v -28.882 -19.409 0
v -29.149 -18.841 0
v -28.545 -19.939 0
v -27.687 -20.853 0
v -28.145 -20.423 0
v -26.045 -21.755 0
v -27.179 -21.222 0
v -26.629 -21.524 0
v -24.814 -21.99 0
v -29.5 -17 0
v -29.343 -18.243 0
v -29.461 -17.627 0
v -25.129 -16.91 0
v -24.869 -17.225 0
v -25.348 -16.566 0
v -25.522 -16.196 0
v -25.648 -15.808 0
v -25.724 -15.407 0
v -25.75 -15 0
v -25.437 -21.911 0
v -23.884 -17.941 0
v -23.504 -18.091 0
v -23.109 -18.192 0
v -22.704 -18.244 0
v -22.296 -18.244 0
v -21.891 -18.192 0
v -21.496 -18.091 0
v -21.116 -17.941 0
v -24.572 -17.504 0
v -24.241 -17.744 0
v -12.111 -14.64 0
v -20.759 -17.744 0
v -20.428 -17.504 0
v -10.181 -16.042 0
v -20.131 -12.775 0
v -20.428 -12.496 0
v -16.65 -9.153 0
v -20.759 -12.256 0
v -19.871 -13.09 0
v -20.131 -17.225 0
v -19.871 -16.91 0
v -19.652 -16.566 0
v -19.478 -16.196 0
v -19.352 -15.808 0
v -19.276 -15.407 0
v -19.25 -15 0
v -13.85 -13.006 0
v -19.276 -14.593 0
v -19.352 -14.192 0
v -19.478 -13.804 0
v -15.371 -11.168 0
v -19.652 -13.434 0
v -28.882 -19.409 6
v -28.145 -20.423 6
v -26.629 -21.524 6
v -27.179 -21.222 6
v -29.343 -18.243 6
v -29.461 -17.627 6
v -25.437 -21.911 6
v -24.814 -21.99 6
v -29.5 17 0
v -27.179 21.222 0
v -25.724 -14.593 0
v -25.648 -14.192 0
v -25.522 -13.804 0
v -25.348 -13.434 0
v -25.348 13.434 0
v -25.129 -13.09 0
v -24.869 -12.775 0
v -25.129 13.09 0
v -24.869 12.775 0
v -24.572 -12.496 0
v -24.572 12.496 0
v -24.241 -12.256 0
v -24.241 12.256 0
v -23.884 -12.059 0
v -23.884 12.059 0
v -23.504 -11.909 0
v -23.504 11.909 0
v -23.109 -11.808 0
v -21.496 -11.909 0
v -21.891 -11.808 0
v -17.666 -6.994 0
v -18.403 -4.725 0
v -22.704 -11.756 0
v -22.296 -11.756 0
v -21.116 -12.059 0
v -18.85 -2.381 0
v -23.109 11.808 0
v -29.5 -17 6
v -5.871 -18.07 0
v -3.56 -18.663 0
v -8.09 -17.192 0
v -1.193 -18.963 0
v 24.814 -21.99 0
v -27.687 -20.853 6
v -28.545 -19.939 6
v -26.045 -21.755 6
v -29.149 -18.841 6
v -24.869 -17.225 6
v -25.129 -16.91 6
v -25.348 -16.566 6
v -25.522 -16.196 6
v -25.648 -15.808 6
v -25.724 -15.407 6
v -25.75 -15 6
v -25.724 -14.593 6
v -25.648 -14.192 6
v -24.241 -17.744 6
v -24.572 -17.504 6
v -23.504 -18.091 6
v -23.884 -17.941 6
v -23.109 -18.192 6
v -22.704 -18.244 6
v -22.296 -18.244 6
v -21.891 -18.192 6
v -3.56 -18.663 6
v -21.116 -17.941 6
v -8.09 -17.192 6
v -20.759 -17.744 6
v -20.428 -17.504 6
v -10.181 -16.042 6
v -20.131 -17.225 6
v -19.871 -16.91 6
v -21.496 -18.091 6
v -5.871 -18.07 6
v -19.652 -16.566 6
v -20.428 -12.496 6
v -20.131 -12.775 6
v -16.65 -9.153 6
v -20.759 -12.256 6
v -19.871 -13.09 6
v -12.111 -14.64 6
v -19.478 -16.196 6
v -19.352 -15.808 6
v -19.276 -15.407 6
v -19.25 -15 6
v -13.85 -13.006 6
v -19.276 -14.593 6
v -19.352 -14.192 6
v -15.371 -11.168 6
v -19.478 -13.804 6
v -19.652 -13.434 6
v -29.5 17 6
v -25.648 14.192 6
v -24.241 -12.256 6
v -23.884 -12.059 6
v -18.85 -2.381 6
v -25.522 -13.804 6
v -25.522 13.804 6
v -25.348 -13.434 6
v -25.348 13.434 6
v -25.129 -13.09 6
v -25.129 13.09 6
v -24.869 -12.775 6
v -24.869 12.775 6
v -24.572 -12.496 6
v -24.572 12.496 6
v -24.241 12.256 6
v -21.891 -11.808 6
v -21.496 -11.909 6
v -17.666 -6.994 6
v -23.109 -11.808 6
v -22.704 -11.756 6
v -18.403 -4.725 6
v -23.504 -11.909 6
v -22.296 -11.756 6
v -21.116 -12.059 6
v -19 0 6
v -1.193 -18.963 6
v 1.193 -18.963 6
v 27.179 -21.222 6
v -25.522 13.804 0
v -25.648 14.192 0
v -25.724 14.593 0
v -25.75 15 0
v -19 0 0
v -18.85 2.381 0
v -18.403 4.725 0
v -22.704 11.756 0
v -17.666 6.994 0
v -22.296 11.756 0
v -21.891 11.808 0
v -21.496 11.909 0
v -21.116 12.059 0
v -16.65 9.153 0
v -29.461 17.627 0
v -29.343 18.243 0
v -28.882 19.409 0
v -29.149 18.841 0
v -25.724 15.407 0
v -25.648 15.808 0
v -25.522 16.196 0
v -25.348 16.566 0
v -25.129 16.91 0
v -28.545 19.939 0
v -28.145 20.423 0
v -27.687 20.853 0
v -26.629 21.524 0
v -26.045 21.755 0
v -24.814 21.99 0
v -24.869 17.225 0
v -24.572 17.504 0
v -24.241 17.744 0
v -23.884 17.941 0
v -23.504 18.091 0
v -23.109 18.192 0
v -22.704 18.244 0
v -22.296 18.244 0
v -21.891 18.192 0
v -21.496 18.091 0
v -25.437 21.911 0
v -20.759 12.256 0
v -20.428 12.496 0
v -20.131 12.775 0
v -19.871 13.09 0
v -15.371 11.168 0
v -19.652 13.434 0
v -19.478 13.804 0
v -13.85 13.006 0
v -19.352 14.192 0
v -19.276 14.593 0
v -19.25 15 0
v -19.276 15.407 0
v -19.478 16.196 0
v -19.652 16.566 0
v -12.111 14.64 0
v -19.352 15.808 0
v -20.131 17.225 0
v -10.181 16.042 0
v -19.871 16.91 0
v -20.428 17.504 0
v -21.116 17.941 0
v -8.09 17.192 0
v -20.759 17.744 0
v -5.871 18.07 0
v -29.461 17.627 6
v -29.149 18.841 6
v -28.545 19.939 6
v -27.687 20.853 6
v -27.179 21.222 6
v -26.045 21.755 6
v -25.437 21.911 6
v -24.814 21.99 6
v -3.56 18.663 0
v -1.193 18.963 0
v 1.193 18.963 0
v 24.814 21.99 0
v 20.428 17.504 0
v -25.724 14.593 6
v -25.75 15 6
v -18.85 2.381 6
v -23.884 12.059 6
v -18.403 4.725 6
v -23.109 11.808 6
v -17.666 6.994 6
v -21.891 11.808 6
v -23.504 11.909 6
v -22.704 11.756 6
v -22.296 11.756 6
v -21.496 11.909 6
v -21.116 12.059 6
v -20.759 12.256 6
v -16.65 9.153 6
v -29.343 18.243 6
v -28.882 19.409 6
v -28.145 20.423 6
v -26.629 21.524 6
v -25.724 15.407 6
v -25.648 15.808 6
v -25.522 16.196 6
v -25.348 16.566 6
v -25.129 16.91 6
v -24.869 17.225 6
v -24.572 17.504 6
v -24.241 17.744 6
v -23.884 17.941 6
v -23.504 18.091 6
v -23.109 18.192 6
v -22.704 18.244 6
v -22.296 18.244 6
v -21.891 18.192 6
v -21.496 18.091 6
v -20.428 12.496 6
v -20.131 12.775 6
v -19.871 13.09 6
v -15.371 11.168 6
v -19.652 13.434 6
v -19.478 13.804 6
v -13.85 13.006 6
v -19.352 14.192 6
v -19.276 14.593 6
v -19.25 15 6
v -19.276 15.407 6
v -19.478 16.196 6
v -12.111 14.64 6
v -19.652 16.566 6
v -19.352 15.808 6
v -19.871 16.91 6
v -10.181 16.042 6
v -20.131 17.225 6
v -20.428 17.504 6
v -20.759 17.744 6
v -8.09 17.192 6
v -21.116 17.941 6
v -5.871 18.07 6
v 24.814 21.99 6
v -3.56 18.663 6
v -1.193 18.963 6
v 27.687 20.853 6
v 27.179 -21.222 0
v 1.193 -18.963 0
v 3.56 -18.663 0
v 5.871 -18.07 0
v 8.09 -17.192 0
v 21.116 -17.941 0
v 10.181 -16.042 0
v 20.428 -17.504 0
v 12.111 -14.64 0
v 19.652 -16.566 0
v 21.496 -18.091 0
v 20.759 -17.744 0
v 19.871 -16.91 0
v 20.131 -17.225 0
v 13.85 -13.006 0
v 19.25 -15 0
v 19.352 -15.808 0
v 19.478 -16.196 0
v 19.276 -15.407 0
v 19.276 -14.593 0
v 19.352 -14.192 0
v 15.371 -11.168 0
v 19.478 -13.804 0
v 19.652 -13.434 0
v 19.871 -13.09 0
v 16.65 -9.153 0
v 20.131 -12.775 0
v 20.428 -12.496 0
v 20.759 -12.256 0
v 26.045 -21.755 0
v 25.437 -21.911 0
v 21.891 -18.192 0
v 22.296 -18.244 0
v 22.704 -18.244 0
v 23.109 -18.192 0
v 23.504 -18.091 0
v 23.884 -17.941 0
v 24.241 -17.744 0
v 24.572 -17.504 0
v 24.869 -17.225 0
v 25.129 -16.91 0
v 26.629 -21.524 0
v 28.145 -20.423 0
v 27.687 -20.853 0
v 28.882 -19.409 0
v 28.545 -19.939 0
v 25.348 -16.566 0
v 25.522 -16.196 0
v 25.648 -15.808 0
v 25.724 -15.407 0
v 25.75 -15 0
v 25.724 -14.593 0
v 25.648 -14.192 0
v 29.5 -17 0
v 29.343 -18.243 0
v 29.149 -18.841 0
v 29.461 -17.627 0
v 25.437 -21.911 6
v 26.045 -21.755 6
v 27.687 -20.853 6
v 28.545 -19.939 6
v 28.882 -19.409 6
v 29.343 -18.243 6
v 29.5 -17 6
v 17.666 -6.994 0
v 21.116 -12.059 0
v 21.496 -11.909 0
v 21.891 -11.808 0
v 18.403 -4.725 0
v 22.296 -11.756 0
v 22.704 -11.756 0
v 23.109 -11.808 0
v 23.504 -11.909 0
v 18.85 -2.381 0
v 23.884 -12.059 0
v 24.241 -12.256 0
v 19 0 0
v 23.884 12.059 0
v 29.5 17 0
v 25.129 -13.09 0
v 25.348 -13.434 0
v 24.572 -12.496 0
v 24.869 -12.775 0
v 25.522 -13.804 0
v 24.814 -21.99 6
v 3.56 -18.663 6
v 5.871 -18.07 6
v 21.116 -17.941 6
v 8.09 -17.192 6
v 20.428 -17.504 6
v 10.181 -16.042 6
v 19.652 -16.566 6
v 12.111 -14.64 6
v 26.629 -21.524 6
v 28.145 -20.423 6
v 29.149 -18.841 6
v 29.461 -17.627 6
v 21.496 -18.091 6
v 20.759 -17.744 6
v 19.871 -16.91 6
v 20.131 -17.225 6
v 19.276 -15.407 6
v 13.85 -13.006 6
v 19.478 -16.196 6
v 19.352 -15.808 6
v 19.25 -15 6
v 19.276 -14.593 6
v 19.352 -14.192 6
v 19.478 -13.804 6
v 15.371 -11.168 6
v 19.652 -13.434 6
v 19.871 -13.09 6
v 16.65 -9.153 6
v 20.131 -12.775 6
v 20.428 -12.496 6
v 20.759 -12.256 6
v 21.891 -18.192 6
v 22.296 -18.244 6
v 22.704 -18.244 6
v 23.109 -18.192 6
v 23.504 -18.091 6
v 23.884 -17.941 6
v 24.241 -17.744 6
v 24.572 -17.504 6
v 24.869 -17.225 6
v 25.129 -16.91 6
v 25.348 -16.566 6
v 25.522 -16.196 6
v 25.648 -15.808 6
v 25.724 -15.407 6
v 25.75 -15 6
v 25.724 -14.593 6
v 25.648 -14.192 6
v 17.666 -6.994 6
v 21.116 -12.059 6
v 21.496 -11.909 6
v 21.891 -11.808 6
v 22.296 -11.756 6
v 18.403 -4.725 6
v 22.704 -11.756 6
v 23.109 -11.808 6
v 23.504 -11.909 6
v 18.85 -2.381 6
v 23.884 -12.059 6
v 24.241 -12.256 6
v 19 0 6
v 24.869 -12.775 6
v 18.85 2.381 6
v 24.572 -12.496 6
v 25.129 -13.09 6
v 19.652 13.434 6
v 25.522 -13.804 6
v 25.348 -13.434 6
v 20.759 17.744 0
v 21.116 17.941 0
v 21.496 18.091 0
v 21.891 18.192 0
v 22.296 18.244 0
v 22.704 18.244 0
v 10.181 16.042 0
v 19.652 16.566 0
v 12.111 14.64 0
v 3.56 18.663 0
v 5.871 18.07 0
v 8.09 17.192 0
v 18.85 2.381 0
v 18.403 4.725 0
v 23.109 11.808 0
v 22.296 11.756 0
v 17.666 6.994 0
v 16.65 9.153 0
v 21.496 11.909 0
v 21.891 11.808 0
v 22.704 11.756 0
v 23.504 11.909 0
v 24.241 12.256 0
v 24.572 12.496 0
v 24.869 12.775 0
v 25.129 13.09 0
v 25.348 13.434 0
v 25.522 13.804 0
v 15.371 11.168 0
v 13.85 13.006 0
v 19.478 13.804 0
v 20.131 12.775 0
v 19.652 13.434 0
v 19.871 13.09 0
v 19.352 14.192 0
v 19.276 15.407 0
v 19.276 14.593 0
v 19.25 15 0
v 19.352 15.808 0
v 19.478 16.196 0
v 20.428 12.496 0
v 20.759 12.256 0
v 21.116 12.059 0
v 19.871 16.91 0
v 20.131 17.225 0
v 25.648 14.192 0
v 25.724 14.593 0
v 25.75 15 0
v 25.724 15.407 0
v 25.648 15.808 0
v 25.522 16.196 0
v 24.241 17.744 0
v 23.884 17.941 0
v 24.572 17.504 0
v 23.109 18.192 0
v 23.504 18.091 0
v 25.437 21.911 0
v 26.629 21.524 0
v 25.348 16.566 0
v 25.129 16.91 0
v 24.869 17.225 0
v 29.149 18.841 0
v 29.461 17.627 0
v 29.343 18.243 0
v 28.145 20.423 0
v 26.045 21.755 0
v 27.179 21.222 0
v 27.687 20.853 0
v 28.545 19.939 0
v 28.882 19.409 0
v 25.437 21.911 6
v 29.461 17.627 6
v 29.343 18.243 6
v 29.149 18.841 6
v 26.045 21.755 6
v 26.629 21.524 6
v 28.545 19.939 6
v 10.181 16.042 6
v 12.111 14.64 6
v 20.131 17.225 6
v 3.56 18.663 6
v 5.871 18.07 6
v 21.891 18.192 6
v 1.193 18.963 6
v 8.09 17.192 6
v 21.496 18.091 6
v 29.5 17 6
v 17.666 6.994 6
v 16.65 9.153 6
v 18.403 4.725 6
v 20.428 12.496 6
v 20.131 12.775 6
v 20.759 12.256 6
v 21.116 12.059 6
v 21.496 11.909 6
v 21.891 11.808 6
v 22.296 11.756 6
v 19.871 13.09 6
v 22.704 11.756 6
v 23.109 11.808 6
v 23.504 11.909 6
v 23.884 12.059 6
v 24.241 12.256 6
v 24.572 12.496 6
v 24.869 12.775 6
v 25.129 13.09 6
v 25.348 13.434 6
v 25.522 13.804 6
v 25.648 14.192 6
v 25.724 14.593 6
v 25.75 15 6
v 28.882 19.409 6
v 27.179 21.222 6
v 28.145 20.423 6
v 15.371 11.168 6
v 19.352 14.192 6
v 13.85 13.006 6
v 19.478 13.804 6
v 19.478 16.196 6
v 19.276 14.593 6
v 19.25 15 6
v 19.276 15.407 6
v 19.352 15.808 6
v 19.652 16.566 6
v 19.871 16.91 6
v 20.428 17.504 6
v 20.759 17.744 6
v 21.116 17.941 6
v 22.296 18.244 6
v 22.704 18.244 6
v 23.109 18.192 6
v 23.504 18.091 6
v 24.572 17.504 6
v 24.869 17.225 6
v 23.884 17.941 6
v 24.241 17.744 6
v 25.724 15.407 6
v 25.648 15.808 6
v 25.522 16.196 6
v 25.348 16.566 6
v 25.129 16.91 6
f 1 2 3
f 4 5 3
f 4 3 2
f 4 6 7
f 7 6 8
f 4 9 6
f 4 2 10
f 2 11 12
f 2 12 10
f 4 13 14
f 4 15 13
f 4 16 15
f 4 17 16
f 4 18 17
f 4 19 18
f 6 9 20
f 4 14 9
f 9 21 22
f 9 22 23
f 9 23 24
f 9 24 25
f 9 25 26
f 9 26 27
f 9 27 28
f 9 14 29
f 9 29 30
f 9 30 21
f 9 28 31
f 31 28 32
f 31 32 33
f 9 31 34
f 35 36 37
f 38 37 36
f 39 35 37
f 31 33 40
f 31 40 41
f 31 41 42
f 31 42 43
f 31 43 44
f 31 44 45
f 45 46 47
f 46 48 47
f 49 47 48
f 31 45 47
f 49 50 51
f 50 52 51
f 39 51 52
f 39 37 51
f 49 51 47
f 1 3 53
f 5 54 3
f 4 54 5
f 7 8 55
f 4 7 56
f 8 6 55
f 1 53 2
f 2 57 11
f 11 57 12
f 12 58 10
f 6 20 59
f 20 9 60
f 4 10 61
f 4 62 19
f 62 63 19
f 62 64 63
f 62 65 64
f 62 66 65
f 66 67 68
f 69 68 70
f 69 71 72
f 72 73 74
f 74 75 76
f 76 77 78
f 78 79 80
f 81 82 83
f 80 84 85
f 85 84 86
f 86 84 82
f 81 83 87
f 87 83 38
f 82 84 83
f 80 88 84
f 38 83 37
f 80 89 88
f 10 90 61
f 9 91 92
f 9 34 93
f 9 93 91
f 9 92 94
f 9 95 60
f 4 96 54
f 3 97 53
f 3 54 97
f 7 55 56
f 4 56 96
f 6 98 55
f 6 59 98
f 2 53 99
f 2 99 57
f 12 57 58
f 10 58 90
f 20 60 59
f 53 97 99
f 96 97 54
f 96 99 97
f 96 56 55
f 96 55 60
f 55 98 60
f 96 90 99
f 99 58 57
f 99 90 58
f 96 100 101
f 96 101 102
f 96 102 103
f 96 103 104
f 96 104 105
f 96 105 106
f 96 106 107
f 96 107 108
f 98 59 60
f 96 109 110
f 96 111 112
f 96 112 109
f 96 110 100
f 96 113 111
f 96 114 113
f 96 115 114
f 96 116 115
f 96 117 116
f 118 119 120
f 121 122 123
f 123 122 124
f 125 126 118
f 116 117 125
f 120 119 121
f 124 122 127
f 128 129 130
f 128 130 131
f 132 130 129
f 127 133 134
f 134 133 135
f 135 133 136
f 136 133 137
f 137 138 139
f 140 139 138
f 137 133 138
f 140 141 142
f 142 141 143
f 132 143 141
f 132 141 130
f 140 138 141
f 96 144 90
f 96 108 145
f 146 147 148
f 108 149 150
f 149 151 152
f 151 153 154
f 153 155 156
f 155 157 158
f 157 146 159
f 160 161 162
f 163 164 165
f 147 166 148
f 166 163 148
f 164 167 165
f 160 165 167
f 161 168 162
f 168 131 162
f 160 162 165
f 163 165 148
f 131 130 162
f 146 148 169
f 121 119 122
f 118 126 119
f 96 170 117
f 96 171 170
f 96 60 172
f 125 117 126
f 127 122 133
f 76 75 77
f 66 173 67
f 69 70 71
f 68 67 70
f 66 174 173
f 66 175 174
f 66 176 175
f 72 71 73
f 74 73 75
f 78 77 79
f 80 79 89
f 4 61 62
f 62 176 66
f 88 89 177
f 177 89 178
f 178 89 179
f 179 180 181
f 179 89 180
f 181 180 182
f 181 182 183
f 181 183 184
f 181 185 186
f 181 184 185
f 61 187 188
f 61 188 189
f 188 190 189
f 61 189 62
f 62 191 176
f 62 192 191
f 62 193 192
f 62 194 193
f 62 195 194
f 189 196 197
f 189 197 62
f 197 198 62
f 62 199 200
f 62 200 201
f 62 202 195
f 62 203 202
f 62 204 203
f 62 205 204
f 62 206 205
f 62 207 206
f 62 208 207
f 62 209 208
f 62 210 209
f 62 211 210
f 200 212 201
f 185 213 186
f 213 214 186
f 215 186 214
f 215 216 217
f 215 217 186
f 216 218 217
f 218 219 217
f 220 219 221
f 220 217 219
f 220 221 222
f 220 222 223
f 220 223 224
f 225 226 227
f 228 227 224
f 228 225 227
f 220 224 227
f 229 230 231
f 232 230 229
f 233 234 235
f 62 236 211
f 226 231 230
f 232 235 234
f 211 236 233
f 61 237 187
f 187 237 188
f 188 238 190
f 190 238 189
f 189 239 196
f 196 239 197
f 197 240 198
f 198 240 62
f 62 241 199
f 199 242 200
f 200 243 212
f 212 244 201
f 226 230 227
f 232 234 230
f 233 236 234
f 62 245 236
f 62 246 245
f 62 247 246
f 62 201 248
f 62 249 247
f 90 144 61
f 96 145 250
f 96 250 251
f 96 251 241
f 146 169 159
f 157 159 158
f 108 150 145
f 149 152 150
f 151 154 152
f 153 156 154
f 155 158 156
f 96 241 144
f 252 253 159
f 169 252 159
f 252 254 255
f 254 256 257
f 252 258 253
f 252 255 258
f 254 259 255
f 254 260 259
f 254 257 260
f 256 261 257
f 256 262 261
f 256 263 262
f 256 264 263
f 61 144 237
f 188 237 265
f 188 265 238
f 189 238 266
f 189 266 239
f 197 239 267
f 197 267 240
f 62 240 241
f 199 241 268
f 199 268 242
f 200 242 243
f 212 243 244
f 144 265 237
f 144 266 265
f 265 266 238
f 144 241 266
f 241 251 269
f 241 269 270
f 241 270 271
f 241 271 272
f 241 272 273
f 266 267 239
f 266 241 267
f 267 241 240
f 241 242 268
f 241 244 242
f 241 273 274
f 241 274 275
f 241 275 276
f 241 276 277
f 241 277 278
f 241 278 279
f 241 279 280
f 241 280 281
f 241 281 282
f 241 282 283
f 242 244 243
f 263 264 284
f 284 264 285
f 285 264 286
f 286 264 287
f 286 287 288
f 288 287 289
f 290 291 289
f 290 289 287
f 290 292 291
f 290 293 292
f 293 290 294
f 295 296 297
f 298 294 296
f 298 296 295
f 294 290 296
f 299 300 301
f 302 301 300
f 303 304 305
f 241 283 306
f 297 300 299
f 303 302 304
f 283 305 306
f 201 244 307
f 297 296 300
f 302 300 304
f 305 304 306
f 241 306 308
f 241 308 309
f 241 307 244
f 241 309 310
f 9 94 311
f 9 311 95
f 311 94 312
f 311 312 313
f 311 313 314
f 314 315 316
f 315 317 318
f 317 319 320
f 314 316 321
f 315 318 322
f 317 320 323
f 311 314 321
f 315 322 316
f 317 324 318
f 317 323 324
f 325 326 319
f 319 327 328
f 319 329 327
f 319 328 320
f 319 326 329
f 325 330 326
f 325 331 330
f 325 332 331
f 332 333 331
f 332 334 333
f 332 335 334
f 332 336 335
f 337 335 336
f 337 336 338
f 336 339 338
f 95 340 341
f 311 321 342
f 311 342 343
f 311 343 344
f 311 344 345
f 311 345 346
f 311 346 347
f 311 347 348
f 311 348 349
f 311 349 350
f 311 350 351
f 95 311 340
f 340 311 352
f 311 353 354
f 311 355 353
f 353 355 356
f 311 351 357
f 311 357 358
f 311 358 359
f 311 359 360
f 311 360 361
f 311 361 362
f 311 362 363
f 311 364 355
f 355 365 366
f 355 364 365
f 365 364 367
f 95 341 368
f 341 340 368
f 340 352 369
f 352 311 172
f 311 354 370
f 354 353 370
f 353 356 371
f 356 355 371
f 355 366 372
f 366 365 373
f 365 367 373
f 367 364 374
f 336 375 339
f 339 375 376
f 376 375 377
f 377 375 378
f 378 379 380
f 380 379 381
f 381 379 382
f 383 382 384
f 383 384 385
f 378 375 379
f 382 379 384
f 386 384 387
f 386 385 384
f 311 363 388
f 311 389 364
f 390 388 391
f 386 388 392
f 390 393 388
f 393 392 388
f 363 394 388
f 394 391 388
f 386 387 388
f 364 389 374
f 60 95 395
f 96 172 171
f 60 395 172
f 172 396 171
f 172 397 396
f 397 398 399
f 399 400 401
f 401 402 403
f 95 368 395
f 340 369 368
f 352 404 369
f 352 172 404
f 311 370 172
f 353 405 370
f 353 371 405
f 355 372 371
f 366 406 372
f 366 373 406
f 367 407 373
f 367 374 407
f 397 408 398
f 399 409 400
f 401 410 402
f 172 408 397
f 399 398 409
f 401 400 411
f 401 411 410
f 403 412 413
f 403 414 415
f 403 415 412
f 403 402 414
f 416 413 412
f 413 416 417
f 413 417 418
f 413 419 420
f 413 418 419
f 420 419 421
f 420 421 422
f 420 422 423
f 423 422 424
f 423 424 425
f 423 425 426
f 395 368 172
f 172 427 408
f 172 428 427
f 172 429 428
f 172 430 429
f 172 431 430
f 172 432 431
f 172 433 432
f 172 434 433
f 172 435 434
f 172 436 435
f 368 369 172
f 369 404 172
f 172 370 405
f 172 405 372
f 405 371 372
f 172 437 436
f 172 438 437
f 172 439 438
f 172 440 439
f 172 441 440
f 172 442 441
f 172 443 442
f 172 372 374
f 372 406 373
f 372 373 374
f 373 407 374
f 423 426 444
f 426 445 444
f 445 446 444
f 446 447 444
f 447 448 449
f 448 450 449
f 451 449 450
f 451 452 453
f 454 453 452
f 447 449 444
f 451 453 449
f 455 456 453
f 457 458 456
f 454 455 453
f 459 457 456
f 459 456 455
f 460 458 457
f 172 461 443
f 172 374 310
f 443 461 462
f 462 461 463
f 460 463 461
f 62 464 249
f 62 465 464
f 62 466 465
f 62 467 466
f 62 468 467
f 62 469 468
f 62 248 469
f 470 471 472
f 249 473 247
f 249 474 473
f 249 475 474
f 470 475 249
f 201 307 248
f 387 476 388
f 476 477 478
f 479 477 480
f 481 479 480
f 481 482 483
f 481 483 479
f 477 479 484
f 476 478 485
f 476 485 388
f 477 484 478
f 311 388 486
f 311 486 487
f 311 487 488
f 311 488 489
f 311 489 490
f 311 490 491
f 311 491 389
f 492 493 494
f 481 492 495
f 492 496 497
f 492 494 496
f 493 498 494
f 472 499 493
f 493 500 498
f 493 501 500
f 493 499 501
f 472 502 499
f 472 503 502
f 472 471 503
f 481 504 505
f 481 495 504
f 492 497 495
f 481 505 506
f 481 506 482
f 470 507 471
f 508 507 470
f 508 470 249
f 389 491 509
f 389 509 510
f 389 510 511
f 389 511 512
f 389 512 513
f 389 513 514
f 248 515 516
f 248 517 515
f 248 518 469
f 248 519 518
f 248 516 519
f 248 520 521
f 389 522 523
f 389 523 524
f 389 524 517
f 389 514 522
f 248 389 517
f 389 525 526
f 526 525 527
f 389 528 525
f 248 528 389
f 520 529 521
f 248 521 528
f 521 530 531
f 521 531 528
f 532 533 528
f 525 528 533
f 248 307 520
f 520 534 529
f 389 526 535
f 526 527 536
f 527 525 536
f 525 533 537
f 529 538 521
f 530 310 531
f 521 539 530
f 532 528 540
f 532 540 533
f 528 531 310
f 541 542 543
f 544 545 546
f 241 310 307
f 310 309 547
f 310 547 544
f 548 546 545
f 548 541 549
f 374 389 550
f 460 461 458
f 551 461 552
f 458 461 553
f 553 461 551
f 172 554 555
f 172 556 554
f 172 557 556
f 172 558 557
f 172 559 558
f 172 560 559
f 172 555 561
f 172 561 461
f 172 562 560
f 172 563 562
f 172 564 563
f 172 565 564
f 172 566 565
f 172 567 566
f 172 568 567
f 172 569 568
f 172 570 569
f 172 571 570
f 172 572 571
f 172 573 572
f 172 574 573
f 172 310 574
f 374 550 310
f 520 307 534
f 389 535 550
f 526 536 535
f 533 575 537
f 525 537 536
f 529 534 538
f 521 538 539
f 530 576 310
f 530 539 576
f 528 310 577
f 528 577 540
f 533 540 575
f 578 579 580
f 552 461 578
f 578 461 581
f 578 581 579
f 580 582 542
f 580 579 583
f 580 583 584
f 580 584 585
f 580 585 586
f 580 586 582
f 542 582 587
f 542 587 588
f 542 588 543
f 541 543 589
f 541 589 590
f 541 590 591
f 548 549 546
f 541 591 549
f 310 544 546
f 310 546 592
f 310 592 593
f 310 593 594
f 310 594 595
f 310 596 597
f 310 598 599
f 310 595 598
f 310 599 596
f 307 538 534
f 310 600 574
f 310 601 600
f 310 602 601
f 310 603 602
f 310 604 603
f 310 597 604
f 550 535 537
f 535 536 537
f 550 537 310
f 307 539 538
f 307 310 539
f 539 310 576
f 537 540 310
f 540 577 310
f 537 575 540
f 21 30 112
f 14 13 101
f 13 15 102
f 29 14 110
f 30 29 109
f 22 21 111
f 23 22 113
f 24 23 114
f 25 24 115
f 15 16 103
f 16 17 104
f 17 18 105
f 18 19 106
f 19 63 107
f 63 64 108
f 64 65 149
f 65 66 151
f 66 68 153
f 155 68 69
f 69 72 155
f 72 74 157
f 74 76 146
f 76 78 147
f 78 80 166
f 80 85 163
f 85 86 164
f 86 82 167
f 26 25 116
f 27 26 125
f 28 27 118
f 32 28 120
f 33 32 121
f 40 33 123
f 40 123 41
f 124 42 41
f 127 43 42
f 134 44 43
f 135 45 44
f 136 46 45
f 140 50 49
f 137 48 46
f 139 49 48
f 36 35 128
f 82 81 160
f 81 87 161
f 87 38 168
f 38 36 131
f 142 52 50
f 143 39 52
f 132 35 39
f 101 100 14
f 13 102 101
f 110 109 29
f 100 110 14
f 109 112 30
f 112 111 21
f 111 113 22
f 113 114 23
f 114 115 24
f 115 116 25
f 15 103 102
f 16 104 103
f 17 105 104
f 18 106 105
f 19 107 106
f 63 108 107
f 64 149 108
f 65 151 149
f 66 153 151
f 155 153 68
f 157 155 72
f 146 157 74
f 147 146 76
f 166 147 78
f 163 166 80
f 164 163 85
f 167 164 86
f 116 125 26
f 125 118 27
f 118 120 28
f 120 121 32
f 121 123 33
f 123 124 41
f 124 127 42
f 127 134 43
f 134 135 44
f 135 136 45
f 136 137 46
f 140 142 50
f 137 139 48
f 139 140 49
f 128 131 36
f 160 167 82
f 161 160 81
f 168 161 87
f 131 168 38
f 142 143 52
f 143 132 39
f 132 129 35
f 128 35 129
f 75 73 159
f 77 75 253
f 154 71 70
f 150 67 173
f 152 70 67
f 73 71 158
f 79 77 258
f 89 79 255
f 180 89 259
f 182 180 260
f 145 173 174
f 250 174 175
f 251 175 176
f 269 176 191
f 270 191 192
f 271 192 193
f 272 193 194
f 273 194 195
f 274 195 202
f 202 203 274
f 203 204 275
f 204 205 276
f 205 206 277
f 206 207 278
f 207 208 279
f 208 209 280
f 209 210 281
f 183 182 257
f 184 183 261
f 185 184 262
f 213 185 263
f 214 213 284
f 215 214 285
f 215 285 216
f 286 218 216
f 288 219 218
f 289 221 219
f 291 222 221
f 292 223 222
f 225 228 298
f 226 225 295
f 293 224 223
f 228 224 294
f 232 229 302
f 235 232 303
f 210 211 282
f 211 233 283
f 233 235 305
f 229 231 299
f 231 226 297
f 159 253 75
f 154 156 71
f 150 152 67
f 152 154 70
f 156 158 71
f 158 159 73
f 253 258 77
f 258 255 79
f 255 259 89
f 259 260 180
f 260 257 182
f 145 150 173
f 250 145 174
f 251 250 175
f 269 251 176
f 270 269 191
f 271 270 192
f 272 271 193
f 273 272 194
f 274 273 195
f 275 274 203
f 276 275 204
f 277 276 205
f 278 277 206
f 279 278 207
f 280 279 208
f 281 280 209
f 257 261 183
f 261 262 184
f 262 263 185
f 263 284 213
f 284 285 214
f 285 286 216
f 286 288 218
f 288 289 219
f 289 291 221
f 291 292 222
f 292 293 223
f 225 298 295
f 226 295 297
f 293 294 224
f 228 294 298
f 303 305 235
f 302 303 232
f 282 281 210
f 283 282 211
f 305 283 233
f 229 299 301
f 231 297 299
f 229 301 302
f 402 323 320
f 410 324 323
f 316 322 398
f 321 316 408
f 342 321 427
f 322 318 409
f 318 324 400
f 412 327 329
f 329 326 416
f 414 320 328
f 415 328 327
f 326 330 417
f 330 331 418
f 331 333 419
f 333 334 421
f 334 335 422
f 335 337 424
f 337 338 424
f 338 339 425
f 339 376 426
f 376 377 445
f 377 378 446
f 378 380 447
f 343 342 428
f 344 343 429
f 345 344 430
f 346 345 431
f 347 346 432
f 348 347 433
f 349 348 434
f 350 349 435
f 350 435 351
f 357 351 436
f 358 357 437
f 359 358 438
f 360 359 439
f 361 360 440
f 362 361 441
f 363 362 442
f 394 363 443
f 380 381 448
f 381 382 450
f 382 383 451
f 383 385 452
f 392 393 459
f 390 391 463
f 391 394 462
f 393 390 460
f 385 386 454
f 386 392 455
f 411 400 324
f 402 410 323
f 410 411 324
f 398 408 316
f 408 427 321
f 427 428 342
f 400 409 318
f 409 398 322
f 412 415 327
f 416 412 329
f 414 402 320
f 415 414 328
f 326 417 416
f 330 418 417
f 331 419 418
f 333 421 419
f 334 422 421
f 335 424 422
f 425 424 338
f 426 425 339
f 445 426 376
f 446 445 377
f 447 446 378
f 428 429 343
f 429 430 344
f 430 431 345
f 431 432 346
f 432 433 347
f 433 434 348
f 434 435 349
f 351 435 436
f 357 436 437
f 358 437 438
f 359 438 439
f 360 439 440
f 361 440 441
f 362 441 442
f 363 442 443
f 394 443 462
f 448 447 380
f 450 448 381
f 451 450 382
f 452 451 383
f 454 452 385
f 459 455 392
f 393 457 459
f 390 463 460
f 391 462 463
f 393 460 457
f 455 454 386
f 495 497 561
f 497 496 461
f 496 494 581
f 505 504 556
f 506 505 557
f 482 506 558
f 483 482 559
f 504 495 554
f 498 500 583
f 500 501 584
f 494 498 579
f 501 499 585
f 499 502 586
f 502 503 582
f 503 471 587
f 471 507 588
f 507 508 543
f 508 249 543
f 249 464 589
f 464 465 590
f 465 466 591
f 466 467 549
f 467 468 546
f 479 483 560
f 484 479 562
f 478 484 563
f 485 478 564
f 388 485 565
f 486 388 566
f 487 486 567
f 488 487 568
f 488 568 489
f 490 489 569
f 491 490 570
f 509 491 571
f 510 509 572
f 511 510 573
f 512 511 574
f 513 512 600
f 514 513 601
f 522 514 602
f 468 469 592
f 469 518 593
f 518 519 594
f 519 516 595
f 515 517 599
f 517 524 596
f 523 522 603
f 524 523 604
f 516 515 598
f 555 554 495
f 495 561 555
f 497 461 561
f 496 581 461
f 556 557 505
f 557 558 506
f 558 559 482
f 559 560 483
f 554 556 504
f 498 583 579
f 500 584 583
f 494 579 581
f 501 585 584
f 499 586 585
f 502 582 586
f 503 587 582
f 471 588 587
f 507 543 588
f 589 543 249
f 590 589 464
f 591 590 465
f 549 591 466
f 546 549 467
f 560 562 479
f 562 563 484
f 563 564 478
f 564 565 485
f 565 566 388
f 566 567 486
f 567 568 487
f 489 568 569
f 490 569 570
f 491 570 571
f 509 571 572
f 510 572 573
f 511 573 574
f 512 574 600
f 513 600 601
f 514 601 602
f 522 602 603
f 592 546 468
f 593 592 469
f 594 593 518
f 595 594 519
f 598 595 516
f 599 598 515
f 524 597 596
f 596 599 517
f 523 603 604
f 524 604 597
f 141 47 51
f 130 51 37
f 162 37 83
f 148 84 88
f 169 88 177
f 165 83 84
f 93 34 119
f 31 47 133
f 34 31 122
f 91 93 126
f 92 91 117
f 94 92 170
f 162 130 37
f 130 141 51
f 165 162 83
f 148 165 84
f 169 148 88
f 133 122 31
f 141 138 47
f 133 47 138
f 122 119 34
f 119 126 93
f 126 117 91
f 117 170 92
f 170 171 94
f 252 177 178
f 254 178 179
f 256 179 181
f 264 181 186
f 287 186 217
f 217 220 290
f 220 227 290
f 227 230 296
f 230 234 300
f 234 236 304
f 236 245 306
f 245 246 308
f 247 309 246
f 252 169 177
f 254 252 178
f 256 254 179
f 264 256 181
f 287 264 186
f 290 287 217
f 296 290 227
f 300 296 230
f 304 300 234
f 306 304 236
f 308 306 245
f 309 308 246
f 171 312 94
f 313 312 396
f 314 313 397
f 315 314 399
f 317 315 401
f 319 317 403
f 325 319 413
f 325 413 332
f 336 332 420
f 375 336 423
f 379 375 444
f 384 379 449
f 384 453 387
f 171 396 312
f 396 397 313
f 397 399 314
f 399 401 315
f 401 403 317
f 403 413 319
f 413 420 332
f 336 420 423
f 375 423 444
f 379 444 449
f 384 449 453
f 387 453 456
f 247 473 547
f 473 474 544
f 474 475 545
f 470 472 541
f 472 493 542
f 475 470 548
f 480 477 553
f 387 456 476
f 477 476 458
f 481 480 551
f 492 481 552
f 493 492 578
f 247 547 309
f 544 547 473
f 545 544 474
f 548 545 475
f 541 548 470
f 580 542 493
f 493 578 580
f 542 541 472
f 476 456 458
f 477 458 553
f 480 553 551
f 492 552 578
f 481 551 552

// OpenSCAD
$fn = 50;

difference() {
	union() {
		hull() {
			translate(v = [-24.5, 17.0, 0]) {
				cylinder(h = 6, r = 5);
			}
			translate(v = [24.5, 17.0, 0]) {
				cylinder(h = 6, r = 5);
			}
			translate(v = [-24.5, -17.0, 0]) {
				cylinder(h = 6, r = 5);
			}
			translate(v = [24.5, -17.0, 0]) {
				cylinder(h = 6, r = 5);
			}
		}
	}
	union() {
		translate(v = [-22.5, -15.0, 0]) {
			cylinder(h = 6, r = 3.25);
		}
		translate(v = [-22.5, 15.0, 0]) {
			cylinder(h = 6, r = 3.25);
		}
		translate(v = [22.5, -15.0, 0]) {
			cylinder(h = 6, r = 3.25);
		}
		translate(v = [22.5, 15.0, 0]) {
			cylinder(h = 6, r = 3.25);
		}
		cylinder(h = 6, r = 19.0);
	}
}
